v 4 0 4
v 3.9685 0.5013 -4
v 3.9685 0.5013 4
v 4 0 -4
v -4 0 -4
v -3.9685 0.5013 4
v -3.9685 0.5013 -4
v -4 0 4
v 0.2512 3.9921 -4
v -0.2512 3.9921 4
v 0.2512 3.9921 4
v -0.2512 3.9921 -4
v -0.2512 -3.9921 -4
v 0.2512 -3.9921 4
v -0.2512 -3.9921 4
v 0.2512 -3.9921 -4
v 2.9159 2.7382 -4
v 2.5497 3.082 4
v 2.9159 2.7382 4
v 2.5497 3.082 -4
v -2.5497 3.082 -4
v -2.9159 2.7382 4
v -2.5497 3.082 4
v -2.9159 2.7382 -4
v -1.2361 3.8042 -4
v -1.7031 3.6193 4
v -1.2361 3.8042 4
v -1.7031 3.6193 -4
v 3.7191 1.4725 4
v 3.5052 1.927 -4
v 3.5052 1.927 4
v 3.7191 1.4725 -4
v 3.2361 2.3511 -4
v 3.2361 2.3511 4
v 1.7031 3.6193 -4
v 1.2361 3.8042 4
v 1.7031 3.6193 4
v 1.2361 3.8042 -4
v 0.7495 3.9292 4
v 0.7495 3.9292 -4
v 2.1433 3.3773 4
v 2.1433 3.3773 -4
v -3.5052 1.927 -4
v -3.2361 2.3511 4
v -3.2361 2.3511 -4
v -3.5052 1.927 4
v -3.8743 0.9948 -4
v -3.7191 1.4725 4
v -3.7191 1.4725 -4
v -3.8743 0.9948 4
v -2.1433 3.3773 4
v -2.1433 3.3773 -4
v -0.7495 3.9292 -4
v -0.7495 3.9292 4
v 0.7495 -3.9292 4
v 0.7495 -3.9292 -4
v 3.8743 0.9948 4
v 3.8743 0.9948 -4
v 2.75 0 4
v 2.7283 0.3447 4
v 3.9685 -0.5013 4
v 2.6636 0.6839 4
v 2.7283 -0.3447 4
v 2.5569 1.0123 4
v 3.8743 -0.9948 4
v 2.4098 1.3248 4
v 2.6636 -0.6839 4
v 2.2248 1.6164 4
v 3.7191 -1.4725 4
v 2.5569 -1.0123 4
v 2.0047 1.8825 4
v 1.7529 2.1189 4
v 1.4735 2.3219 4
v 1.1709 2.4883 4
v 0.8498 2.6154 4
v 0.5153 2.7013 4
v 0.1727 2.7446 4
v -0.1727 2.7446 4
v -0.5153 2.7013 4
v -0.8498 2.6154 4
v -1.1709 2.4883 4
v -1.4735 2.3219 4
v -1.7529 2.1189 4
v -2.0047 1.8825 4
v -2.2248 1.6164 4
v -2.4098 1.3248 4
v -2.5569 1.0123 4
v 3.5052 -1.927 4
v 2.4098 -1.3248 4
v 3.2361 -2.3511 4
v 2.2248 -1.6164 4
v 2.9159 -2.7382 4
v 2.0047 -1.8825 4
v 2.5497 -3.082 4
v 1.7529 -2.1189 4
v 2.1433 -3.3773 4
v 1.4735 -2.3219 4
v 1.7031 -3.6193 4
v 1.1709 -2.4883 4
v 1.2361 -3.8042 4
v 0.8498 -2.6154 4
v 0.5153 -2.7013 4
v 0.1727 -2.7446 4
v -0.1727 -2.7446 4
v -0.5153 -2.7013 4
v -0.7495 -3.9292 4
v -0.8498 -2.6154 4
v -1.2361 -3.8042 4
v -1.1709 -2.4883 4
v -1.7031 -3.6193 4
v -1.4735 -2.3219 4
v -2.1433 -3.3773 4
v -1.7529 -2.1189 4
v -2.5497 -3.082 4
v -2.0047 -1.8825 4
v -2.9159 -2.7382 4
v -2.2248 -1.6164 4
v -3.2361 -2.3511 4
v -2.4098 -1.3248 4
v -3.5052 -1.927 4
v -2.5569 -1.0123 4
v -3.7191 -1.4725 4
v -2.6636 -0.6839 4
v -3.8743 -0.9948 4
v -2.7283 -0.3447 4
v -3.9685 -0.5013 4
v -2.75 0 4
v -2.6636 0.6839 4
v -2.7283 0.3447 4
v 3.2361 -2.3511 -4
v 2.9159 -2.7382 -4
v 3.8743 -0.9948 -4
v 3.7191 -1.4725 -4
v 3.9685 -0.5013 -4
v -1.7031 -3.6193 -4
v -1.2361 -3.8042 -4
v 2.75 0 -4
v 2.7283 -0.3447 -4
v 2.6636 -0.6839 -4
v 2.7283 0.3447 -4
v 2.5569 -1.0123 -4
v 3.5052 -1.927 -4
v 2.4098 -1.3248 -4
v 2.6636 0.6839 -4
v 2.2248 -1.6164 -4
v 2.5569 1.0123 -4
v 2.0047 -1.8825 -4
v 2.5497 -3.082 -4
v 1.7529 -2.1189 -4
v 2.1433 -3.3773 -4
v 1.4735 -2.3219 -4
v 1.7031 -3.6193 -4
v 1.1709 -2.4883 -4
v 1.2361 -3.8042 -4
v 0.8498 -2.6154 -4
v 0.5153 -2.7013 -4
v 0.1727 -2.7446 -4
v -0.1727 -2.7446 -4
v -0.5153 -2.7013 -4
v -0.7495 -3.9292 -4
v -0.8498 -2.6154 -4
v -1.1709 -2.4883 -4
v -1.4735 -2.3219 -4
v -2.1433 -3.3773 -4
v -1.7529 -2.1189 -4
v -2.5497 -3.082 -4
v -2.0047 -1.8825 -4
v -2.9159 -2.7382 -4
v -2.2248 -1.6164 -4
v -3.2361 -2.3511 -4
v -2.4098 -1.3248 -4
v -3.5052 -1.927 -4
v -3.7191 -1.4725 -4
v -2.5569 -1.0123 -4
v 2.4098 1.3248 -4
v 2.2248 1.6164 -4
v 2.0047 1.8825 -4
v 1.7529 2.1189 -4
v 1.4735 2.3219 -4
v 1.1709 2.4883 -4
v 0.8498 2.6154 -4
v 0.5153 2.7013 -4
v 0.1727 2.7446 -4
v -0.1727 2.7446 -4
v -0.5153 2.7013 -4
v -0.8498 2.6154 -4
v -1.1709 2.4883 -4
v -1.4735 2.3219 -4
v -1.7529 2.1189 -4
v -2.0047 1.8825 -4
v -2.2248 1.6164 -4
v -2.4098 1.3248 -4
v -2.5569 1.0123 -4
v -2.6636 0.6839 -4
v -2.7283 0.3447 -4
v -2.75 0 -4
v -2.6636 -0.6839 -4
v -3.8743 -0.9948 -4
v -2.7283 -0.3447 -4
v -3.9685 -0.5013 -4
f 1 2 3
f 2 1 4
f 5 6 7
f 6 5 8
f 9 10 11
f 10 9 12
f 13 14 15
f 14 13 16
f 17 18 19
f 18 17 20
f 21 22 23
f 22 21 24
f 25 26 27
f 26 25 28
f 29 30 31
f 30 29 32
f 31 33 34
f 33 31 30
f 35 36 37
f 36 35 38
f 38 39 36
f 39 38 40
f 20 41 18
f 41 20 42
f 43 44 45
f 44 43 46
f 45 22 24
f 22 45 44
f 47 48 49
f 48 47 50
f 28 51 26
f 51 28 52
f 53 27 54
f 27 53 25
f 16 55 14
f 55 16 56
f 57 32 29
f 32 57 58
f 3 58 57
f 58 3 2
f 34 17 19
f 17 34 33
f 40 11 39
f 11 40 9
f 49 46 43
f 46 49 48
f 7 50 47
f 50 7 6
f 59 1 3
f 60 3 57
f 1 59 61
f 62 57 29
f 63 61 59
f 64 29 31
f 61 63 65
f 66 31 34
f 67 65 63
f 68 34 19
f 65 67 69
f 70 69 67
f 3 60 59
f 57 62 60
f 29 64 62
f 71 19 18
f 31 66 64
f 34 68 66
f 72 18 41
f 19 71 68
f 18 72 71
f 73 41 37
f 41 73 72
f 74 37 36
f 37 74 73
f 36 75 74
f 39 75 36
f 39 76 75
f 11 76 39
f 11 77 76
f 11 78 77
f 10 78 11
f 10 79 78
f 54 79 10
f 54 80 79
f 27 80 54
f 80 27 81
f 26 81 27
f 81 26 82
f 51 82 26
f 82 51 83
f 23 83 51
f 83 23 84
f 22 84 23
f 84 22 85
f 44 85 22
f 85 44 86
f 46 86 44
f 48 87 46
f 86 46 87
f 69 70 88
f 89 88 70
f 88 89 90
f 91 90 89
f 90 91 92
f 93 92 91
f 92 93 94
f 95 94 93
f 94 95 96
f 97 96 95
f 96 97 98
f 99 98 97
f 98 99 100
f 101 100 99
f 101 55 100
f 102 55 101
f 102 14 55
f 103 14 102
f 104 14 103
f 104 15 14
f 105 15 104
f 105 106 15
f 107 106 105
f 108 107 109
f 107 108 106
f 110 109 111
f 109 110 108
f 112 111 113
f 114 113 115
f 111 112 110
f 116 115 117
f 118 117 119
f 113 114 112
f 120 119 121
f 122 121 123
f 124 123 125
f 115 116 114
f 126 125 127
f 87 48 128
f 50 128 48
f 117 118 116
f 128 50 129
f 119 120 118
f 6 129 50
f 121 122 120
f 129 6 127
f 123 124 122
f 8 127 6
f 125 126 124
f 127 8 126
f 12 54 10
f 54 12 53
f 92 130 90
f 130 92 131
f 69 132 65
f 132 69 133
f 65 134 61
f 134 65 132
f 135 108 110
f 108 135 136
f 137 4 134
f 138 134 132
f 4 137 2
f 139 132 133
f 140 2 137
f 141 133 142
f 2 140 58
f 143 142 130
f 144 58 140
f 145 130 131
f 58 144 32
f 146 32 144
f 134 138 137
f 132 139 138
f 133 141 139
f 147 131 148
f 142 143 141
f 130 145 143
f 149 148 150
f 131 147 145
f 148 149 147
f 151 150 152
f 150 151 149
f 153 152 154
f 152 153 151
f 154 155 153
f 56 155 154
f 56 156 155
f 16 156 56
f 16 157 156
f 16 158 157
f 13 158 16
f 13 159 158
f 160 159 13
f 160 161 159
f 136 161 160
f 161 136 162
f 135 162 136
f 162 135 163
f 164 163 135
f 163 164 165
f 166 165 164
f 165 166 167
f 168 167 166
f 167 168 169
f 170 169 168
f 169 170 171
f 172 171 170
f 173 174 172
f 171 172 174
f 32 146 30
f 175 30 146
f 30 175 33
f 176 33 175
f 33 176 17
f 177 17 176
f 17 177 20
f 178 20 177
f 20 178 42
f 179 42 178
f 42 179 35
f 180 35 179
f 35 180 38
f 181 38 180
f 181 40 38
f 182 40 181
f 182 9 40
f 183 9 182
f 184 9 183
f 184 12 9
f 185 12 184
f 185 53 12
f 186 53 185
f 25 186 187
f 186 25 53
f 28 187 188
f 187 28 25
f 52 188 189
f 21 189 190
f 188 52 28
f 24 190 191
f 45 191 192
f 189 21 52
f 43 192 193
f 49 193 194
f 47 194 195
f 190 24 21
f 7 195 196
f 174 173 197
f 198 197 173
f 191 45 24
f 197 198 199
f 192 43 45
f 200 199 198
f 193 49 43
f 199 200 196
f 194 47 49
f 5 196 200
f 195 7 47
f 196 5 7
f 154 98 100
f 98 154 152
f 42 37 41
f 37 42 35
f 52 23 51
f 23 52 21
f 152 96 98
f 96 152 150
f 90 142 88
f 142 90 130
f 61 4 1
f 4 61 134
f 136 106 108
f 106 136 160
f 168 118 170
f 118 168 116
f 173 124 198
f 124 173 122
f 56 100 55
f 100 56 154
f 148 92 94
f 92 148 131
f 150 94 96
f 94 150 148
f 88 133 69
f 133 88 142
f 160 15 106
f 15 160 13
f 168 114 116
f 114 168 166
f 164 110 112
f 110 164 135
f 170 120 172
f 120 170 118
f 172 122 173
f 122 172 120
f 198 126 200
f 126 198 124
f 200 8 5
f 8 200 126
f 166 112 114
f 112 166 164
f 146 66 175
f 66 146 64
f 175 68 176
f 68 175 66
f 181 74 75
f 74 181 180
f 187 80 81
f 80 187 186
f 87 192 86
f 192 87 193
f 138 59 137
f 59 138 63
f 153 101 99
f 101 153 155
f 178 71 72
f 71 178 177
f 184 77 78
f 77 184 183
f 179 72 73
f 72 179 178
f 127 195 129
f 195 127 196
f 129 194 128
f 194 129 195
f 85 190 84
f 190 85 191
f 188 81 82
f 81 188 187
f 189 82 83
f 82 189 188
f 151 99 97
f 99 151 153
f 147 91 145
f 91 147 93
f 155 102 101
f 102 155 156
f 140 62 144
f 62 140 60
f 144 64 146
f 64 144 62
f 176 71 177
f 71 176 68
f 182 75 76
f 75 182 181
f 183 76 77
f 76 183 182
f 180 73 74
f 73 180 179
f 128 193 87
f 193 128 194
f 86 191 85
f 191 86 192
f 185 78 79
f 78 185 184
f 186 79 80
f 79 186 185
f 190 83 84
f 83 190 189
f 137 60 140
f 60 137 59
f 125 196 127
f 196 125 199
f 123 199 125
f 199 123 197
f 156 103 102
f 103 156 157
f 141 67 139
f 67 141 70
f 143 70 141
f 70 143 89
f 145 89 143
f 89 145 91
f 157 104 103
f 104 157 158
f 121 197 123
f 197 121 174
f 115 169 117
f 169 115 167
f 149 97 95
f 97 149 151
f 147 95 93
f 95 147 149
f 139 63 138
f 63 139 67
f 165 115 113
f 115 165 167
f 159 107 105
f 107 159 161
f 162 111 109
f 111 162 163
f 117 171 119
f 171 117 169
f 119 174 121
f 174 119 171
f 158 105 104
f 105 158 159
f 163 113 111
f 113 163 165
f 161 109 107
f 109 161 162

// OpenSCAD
$fn = 50;


difference() {
	union() {
		translate(v = [0, 0, -4.0000000000]) {
			cylinder(h = 8, r = 4.0000000000);
		}
	}
	union() {
		translate(v = [0, 0, -100.0000000000]) {
			cylinder(h = 200, r = 2.7500000000);
		}
	}
}
